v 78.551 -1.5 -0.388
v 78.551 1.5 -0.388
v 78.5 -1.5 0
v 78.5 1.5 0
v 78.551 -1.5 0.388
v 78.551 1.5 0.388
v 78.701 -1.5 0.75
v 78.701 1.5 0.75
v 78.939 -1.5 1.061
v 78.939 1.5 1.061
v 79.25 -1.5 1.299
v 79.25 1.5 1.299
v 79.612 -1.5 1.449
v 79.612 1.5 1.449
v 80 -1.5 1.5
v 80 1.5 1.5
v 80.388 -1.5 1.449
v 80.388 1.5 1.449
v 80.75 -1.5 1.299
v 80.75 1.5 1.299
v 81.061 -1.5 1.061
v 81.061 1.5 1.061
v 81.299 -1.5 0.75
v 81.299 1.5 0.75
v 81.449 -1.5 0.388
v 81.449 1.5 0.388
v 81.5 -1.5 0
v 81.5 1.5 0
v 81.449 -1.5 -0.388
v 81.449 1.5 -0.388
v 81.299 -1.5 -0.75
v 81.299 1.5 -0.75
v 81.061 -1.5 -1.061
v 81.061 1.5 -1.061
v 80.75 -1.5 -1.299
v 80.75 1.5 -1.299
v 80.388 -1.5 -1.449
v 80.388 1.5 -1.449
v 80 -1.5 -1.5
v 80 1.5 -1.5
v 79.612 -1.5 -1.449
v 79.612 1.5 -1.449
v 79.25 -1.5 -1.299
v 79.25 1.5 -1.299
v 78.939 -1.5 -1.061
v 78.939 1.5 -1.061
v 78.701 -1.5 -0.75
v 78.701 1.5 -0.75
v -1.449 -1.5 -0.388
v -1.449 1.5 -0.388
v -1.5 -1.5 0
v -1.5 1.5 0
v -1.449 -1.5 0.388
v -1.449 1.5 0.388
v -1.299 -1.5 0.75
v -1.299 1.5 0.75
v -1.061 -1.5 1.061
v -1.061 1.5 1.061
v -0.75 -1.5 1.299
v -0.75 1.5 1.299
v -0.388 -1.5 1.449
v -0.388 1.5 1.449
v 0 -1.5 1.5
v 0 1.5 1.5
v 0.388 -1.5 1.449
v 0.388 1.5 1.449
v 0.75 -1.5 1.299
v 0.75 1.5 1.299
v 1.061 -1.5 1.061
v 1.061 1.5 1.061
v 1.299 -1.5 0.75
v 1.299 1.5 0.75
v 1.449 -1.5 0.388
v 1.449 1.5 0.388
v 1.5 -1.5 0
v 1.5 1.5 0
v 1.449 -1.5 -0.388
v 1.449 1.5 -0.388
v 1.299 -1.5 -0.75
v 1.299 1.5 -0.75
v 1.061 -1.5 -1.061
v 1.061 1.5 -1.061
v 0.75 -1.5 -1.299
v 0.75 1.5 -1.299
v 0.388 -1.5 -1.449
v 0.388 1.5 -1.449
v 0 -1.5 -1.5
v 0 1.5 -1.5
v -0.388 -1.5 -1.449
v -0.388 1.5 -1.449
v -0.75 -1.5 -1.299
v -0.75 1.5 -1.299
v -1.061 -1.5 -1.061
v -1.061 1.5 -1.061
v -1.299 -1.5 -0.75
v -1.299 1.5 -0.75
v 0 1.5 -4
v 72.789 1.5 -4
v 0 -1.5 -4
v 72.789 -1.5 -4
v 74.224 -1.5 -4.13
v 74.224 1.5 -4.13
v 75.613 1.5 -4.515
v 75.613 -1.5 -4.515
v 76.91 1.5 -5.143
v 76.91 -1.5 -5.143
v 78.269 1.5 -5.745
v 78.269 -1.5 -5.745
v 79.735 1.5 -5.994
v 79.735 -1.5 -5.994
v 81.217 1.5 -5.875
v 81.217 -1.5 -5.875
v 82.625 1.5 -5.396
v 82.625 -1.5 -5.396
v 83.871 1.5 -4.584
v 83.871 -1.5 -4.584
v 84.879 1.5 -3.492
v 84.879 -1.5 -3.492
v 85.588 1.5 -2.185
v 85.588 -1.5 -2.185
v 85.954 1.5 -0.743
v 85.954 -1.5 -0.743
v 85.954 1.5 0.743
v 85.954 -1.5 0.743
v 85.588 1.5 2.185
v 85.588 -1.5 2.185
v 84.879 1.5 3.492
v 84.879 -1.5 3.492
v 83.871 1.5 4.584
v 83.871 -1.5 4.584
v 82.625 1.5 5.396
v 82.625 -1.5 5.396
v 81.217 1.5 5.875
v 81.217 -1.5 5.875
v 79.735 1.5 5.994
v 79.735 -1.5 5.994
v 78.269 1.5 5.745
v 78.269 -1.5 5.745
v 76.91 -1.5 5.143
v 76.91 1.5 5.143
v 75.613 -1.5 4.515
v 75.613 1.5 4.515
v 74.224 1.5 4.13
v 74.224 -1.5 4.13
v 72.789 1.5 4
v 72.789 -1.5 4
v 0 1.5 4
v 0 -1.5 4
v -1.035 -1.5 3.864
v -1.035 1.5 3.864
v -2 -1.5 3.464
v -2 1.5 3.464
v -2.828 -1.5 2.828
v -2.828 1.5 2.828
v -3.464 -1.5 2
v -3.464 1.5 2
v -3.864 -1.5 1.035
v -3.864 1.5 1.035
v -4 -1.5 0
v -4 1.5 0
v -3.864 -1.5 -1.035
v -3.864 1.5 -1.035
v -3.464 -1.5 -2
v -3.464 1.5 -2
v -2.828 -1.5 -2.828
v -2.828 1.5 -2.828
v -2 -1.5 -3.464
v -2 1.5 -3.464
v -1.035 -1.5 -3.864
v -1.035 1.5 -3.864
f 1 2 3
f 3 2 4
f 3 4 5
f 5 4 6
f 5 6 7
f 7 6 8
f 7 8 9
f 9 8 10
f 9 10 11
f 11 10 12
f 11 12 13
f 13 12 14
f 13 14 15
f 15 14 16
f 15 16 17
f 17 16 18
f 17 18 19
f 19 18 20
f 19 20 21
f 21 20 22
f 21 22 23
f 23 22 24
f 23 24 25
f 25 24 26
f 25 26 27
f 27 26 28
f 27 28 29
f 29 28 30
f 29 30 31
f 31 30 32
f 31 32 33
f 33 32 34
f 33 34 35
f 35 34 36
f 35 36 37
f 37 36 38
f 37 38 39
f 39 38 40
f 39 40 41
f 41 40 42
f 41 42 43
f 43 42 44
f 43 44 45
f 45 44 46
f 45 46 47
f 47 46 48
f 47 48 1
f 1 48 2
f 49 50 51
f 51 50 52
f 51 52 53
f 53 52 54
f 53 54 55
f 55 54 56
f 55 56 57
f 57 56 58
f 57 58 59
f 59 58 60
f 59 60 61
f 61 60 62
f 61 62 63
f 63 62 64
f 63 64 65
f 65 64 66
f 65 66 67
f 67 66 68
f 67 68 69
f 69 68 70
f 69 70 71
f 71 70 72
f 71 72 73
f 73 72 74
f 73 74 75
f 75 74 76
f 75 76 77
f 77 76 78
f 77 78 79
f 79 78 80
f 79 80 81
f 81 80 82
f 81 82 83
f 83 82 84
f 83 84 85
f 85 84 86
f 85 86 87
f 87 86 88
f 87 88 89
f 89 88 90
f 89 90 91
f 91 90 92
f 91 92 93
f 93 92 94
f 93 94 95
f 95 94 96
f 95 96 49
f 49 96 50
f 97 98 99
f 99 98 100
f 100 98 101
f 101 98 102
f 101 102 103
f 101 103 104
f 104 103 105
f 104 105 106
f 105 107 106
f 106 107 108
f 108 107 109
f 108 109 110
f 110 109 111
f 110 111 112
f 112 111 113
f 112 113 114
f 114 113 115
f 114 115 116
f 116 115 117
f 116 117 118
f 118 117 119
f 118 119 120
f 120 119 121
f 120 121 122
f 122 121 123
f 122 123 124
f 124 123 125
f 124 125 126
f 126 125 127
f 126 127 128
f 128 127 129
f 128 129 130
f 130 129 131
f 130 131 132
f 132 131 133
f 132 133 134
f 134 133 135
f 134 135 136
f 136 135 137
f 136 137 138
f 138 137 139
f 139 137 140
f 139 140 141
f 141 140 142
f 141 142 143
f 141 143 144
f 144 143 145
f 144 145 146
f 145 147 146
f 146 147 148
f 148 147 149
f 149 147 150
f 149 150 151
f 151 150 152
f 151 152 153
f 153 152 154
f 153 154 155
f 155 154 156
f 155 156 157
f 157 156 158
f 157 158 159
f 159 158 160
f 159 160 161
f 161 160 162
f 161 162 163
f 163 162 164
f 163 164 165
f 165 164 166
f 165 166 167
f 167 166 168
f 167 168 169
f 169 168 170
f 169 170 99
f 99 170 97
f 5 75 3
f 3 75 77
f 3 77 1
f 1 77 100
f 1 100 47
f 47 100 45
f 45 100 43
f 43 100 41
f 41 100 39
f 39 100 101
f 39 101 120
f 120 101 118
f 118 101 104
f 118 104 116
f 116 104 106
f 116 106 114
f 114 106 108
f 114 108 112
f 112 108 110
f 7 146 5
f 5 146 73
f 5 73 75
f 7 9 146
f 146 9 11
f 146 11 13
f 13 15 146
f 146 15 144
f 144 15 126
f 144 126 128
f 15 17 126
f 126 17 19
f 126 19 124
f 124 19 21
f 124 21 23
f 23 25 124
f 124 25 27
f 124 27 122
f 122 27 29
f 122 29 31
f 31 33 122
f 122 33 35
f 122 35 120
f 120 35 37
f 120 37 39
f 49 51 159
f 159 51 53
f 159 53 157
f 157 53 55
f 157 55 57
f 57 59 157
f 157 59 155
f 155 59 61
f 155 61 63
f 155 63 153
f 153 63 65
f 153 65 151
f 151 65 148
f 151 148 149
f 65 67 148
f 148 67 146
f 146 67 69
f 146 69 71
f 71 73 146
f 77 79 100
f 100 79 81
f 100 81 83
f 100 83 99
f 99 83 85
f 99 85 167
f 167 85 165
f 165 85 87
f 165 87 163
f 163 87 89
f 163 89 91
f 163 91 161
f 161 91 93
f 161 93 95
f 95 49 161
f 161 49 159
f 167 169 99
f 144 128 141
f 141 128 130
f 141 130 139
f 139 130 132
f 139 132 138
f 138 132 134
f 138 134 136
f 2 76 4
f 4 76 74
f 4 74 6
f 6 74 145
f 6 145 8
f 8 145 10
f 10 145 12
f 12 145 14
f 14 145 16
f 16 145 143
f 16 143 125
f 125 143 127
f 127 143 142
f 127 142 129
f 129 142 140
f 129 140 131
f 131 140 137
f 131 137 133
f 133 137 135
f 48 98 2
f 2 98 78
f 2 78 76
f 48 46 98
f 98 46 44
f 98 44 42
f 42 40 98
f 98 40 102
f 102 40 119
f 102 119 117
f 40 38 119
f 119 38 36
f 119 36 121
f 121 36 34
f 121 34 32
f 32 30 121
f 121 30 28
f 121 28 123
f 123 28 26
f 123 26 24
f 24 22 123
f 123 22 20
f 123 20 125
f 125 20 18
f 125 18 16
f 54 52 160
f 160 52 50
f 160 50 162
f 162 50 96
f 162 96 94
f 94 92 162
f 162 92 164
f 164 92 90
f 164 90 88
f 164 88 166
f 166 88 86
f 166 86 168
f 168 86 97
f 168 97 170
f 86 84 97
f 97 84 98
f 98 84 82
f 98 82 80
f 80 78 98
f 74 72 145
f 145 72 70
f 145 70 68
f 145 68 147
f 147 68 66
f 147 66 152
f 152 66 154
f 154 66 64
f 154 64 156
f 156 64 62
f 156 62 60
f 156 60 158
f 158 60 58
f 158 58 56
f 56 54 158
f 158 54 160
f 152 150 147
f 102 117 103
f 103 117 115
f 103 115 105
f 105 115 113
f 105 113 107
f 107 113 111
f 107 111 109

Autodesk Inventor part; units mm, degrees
ref_plane "YZ Plane" through (0, 0, 0) normal (1, 0, 0) x (0, 1, 0)
ref_plane "XZ Plane" through (0, 0, 0) normal (0, 1, 0) x (-1, 0, 0)
ref_plane "XY Plane" through (0, 0, 0) normal (0, 0, 1) x (1, 0, 0)
sketch "草圖1" plane through (0, 0, 0) normal (0, 1, 0) x (-1, 0, 0)
  circle A0 centre (0, 0) radius 1.5
  circle A1 centre (0, 0) radius 4
  line L0 (0, 0) -> (-80, 0)
  circle A2 centre (-80, 0) radius 1.5
  arc A3 (-76.9095, 5.1429) -> (-76.9095, -5.1429) centre (-80, 0) ccw
  line L1 (0, 4) -> (-72.7889, 4)
  line L2 (0, -4) -> (-72.7889, -4)
  arc A4 (-76.9095, 5.1429) -> (-72.7889, 4) centre (-72.7889, 12) ccw
  arc A5 (-72.7889, -4) -> (-76.9095, -5.1429) centre (-72.7889, -12) ccw
  point P0 (-75.5279, 4)
  point P1 (-75.5279, -4)
  dimension "d0" = 3
  dimension "d1" = 8
  dimension "d2" = 80
  dimension "d3" = 3
  dimension "d4" = 12
  dimension "d5" = 8
extrude "擠出1" add sketch "草圖1" along normal mid plane 3
properties part number "連接1"
